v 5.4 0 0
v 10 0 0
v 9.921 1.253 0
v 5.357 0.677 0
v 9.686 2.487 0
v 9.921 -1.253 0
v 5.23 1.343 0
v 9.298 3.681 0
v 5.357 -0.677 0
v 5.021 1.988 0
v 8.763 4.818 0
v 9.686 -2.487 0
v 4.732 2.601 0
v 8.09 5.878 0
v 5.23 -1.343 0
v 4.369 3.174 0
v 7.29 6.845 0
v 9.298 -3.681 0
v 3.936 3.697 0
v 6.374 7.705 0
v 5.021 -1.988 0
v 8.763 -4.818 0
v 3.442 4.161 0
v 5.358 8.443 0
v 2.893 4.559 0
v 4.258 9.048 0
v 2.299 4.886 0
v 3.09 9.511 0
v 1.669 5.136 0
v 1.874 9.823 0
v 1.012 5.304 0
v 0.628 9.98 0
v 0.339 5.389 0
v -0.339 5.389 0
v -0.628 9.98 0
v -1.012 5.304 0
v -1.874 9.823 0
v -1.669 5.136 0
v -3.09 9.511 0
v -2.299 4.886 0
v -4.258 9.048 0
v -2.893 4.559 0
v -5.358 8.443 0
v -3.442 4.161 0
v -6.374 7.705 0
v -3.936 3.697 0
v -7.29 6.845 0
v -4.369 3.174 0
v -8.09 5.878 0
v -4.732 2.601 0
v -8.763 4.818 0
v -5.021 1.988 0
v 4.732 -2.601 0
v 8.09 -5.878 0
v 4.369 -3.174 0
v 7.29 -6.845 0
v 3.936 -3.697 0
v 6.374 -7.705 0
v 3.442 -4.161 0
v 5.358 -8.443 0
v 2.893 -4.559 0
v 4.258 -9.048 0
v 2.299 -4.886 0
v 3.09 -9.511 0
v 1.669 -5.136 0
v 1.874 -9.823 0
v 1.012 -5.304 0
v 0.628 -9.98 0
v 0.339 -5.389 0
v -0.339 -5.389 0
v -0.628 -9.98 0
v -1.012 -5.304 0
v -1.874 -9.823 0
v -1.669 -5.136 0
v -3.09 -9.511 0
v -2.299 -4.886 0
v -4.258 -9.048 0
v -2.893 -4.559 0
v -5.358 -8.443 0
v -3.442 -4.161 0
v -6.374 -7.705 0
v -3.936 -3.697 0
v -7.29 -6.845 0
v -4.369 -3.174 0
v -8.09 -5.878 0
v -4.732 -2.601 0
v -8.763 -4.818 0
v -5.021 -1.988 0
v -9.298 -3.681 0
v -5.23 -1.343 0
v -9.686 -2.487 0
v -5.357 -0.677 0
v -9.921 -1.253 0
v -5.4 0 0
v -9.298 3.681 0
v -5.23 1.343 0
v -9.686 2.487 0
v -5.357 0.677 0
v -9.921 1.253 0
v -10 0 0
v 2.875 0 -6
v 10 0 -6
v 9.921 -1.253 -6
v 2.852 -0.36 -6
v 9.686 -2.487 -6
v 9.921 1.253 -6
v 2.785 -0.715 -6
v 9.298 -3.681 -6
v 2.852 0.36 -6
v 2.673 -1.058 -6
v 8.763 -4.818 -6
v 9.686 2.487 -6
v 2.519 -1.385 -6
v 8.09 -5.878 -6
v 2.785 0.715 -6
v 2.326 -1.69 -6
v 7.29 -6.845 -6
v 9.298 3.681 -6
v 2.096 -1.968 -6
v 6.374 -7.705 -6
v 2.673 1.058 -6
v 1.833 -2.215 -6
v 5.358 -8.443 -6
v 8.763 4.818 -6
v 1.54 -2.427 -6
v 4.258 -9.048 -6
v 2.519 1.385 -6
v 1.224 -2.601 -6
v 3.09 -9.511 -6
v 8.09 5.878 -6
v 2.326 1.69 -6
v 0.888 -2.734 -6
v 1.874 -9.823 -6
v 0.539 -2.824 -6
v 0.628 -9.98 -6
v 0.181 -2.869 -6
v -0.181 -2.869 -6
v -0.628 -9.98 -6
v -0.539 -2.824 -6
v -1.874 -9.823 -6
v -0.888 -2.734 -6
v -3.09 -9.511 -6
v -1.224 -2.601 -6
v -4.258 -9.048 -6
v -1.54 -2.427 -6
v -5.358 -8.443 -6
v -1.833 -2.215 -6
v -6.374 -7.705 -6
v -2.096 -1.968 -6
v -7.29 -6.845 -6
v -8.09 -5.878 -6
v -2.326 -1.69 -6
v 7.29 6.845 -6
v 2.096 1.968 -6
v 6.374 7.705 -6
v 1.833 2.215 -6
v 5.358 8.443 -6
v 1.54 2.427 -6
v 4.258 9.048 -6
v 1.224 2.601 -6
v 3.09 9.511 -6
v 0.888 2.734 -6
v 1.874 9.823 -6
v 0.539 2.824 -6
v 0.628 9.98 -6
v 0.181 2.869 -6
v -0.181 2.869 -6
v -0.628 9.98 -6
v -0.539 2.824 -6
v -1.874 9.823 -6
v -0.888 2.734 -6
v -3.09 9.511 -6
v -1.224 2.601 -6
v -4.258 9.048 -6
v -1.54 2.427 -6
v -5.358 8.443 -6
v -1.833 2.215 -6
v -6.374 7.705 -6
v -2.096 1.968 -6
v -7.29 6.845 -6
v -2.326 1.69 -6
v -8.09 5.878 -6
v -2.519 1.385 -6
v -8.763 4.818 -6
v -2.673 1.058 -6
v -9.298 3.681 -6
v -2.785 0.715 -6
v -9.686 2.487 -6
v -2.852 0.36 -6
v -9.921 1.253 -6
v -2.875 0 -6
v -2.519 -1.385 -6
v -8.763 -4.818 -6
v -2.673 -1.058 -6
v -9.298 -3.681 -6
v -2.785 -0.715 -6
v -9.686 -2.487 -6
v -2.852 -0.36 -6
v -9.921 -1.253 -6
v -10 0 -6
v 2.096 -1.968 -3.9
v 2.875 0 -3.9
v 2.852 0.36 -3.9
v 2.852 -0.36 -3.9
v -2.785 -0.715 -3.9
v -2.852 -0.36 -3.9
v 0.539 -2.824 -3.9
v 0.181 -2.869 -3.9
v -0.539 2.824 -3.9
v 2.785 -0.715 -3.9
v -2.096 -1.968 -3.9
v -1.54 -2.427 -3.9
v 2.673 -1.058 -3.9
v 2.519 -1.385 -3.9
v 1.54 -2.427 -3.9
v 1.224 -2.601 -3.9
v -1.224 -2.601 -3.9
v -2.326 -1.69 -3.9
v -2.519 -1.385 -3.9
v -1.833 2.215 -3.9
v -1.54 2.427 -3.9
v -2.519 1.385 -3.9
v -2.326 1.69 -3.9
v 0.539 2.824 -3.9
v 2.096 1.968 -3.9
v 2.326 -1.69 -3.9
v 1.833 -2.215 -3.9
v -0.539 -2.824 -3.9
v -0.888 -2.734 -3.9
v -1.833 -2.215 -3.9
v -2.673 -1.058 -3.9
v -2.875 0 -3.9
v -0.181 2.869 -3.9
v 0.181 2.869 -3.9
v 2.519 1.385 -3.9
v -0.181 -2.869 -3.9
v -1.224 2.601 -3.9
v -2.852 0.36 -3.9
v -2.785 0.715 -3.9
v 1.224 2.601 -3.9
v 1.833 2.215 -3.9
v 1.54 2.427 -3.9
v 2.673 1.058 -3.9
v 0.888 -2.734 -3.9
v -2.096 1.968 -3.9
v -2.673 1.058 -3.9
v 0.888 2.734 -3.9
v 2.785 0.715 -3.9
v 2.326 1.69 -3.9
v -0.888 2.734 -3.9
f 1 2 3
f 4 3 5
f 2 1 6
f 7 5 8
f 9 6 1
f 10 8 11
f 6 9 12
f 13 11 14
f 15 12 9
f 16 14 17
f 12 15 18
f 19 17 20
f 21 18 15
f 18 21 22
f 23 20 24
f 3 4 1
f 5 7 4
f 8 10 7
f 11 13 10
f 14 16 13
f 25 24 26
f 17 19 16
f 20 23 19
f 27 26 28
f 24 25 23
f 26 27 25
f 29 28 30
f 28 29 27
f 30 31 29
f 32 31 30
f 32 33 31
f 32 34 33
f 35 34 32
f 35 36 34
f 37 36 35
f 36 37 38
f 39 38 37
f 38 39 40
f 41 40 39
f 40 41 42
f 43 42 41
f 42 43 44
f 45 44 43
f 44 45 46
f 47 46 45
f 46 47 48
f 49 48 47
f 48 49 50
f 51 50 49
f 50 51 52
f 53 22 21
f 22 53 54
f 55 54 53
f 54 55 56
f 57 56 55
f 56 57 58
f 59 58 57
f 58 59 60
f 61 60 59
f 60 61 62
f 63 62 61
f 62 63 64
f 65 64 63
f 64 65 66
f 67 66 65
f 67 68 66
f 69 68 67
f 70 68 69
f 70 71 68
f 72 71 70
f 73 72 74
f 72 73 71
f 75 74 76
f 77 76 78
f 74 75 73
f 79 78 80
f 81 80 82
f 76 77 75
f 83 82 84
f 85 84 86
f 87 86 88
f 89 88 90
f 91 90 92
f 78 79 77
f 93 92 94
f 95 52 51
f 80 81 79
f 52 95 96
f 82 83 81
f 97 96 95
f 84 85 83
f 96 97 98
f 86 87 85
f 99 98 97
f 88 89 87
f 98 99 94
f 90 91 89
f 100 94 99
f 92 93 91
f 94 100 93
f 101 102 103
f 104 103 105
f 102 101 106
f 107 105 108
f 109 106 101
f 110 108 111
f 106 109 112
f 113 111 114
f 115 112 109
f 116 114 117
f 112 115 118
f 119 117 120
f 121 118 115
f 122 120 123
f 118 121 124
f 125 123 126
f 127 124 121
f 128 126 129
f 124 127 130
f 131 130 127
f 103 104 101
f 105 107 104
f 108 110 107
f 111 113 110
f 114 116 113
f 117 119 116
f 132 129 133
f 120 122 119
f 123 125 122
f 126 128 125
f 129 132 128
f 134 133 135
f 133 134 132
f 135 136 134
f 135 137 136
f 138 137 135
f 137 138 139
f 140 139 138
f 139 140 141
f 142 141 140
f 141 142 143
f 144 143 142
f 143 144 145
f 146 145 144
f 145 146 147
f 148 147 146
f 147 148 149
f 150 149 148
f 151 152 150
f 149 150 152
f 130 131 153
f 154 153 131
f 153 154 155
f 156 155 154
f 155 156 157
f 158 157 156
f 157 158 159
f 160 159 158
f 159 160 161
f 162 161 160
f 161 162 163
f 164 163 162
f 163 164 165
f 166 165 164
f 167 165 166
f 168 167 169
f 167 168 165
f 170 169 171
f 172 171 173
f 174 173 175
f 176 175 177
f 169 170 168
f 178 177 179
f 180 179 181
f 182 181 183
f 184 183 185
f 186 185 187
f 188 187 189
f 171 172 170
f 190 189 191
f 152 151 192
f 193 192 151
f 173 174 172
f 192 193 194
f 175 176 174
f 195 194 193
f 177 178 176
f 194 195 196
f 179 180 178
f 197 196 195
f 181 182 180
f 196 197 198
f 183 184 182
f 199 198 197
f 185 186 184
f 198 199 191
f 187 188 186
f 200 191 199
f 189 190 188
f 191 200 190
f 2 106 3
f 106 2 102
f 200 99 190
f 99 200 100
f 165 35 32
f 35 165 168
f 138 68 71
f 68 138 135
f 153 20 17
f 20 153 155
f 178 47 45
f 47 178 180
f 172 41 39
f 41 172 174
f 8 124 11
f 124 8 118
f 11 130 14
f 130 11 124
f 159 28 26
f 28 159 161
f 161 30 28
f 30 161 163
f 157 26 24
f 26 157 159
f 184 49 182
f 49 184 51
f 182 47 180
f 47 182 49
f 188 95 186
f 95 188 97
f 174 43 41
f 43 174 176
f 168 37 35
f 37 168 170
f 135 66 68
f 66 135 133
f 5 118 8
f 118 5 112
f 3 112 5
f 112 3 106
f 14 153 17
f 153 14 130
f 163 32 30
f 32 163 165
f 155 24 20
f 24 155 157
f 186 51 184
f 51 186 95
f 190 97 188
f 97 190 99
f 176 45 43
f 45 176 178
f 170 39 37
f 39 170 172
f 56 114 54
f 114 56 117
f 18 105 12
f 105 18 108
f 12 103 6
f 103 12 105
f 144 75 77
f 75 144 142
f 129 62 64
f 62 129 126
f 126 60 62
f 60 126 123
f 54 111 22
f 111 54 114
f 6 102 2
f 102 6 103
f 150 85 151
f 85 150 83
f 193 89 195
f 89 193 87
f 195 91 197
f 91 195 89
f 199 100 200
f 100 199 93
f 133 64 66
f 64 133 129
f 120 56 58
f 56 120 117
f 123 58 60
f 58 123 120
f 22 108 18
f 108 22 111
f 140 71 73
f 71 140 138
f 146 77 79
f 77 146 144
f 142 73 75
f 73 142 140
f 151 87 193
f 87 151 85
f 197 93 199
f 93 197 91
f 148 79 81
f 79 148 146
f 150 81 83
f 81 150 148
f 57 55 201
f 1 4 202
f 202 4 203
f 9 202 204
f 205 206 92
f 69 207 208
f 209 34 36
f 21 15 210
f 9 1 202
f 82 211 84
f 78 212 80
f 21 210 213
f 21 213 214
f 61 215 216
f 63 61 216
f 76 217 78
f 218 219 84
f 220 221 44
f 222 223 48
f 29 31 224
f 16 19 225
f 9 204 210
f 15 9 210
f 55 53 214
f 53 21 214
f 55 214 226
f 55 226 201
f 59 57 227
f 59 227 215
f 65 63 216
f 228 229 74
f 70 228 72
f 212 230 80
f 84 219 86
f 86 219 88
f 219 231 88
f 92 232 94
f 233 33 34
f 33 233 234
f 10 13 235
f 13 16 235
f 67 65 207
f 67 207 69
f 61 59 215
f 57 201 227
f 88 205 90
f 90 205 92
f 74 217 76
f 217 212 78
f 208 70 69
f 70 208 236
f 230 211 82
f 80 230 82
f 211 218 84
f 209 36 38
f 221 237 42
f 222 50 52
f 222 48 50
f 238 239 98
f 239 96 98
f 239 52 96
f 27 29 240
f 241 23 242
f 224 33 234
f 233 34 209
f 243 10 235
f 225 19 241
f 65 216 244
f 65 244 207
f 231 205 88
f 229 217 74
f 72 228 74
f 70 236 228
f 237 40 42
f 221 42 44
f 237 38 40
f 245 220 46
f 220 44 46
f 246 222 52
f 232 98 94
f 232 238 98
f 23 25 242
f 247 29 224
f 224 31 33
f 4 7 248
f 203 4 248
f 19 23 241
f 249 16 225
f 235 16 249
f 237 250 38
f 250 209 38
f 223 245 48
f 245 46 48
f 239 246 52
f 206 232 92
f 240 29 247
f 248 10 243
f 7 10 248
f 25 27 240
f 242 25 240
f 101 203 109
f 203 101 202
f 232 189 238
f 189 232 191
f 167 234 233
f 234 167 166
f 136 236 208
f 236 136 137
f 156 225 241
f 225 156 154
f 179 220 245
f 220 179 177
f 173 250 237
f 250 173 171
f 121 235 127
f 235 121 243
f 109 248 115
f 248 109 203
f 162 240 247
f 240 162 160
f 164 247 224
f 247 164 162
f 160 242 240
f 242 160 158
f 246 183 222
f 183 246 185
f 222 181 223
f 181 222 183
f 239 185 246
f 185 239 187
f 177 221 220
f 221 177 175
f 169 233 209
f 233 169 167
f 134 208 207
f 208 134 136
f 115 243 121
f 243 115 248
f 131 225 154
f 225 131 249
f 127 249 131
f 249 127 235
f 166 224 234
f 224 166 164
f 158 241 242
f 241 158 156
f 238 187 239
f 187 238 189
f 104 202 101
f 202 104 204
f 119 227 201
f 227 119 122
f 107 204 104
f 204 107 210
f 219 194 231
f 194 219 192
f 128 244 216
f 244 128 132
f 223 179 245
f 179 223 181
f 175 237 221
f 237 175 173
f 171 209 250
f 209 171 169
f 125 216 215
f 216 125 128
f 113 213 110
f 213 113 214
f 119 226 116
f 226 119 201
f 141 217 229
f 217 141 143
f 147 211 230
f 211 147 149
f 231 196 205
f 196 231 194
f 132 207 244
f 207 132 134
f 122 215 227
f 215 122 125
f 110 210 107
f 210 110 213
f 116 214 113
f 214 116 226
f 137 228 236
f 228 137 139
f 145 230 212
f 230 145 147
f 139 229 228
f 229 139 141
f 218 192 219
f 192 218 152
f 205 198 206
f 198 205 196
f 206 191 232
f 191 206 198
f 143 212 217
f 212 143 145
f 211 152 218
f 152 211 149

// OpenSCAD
$fn = 50;


difference() {
	union() {
		translate(v = [0, 0, -6.0000000000]) {
			cylinder(h = 6, r = 7.0000000000);
		}
		translate(v = [0, 0, -6.0000000000]) {
			cylinder(h = 6, r = 10.0000000000);
		}
	}
	union() {
		translate(v = [0, 0, 0]) {
			rotate(a = [0, 0, 0]) {
				difference() {
					union() {
						#translate(v = [0, 0, -6.0000000000]) {
							cylinder(h = 6, r = 2.6000000000);
						}
						#translate(v = [0, 0, -3.9000000000]) {
							cylinder(h = 3.9000000000, r1 = 2.8750000000, r2 = 5.4000000000);
						}
						#translate(v = [0, 0, -6.0000000000]) {
							cylinder(h = 6, r = 2.8750000000);
						}
						#translate(v = [0, 0, -6.0000000000]) {
							cylinder(h = 6, r = 2.6000000000);
						}
					}
					union();
				}
			}
		}
	}
}
